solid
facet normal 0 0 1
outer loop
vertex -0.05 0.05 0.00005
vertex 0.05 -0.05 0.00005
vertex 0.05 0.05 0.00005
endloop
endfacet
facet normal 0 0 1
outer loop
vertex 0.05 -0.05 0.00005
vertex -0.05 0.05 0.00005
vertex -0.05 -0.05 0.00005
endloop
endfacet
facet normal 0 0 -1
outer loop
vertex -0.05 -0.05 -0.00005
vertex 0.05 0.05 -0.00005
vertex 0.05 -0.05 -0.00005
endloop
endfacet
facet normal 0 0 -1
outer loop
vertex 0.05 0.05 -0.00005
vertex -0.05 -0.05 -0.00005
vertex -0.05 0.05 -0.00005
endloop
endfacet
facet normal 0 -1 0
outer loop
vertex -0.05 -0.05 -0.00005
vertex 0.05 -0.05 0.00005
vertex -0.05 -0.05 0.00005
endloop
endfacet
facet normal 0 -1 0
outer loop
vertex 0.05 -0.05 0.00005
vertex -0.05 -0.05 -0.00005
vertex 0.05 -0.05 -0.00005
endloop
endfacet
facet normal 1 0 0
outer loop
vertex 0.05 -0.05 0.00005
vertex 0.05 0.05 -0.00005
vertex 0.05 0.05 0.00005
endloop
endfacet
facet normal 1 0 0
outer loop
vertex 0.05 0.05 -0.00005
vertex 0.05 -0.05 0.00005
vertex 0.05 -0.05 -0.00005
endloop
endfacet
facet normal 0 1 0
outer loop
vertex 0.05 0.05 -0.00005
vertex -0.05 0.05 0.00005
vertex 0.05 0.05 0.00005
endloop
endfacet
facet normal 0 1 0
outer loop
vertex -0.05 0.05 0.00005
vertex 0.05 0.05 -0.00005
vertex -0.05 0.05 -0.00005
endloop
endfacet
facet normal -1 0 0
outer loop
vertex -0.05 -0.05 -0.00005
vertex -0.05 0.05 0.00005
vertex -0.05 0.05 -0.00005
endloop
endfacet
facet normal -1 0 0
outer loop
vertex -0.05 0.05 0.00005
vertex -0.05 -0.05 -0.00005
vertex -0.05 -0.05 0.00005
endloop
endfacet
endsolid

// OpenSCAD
/** A thin card of size (100 x 100 x 0.1) millimeters,
 * origin at the center, scaled to meters for ROS.
 */

scale( 0.001, 0.001, 0.001 )
  cube( size=[100,100,0.1], center=true );
